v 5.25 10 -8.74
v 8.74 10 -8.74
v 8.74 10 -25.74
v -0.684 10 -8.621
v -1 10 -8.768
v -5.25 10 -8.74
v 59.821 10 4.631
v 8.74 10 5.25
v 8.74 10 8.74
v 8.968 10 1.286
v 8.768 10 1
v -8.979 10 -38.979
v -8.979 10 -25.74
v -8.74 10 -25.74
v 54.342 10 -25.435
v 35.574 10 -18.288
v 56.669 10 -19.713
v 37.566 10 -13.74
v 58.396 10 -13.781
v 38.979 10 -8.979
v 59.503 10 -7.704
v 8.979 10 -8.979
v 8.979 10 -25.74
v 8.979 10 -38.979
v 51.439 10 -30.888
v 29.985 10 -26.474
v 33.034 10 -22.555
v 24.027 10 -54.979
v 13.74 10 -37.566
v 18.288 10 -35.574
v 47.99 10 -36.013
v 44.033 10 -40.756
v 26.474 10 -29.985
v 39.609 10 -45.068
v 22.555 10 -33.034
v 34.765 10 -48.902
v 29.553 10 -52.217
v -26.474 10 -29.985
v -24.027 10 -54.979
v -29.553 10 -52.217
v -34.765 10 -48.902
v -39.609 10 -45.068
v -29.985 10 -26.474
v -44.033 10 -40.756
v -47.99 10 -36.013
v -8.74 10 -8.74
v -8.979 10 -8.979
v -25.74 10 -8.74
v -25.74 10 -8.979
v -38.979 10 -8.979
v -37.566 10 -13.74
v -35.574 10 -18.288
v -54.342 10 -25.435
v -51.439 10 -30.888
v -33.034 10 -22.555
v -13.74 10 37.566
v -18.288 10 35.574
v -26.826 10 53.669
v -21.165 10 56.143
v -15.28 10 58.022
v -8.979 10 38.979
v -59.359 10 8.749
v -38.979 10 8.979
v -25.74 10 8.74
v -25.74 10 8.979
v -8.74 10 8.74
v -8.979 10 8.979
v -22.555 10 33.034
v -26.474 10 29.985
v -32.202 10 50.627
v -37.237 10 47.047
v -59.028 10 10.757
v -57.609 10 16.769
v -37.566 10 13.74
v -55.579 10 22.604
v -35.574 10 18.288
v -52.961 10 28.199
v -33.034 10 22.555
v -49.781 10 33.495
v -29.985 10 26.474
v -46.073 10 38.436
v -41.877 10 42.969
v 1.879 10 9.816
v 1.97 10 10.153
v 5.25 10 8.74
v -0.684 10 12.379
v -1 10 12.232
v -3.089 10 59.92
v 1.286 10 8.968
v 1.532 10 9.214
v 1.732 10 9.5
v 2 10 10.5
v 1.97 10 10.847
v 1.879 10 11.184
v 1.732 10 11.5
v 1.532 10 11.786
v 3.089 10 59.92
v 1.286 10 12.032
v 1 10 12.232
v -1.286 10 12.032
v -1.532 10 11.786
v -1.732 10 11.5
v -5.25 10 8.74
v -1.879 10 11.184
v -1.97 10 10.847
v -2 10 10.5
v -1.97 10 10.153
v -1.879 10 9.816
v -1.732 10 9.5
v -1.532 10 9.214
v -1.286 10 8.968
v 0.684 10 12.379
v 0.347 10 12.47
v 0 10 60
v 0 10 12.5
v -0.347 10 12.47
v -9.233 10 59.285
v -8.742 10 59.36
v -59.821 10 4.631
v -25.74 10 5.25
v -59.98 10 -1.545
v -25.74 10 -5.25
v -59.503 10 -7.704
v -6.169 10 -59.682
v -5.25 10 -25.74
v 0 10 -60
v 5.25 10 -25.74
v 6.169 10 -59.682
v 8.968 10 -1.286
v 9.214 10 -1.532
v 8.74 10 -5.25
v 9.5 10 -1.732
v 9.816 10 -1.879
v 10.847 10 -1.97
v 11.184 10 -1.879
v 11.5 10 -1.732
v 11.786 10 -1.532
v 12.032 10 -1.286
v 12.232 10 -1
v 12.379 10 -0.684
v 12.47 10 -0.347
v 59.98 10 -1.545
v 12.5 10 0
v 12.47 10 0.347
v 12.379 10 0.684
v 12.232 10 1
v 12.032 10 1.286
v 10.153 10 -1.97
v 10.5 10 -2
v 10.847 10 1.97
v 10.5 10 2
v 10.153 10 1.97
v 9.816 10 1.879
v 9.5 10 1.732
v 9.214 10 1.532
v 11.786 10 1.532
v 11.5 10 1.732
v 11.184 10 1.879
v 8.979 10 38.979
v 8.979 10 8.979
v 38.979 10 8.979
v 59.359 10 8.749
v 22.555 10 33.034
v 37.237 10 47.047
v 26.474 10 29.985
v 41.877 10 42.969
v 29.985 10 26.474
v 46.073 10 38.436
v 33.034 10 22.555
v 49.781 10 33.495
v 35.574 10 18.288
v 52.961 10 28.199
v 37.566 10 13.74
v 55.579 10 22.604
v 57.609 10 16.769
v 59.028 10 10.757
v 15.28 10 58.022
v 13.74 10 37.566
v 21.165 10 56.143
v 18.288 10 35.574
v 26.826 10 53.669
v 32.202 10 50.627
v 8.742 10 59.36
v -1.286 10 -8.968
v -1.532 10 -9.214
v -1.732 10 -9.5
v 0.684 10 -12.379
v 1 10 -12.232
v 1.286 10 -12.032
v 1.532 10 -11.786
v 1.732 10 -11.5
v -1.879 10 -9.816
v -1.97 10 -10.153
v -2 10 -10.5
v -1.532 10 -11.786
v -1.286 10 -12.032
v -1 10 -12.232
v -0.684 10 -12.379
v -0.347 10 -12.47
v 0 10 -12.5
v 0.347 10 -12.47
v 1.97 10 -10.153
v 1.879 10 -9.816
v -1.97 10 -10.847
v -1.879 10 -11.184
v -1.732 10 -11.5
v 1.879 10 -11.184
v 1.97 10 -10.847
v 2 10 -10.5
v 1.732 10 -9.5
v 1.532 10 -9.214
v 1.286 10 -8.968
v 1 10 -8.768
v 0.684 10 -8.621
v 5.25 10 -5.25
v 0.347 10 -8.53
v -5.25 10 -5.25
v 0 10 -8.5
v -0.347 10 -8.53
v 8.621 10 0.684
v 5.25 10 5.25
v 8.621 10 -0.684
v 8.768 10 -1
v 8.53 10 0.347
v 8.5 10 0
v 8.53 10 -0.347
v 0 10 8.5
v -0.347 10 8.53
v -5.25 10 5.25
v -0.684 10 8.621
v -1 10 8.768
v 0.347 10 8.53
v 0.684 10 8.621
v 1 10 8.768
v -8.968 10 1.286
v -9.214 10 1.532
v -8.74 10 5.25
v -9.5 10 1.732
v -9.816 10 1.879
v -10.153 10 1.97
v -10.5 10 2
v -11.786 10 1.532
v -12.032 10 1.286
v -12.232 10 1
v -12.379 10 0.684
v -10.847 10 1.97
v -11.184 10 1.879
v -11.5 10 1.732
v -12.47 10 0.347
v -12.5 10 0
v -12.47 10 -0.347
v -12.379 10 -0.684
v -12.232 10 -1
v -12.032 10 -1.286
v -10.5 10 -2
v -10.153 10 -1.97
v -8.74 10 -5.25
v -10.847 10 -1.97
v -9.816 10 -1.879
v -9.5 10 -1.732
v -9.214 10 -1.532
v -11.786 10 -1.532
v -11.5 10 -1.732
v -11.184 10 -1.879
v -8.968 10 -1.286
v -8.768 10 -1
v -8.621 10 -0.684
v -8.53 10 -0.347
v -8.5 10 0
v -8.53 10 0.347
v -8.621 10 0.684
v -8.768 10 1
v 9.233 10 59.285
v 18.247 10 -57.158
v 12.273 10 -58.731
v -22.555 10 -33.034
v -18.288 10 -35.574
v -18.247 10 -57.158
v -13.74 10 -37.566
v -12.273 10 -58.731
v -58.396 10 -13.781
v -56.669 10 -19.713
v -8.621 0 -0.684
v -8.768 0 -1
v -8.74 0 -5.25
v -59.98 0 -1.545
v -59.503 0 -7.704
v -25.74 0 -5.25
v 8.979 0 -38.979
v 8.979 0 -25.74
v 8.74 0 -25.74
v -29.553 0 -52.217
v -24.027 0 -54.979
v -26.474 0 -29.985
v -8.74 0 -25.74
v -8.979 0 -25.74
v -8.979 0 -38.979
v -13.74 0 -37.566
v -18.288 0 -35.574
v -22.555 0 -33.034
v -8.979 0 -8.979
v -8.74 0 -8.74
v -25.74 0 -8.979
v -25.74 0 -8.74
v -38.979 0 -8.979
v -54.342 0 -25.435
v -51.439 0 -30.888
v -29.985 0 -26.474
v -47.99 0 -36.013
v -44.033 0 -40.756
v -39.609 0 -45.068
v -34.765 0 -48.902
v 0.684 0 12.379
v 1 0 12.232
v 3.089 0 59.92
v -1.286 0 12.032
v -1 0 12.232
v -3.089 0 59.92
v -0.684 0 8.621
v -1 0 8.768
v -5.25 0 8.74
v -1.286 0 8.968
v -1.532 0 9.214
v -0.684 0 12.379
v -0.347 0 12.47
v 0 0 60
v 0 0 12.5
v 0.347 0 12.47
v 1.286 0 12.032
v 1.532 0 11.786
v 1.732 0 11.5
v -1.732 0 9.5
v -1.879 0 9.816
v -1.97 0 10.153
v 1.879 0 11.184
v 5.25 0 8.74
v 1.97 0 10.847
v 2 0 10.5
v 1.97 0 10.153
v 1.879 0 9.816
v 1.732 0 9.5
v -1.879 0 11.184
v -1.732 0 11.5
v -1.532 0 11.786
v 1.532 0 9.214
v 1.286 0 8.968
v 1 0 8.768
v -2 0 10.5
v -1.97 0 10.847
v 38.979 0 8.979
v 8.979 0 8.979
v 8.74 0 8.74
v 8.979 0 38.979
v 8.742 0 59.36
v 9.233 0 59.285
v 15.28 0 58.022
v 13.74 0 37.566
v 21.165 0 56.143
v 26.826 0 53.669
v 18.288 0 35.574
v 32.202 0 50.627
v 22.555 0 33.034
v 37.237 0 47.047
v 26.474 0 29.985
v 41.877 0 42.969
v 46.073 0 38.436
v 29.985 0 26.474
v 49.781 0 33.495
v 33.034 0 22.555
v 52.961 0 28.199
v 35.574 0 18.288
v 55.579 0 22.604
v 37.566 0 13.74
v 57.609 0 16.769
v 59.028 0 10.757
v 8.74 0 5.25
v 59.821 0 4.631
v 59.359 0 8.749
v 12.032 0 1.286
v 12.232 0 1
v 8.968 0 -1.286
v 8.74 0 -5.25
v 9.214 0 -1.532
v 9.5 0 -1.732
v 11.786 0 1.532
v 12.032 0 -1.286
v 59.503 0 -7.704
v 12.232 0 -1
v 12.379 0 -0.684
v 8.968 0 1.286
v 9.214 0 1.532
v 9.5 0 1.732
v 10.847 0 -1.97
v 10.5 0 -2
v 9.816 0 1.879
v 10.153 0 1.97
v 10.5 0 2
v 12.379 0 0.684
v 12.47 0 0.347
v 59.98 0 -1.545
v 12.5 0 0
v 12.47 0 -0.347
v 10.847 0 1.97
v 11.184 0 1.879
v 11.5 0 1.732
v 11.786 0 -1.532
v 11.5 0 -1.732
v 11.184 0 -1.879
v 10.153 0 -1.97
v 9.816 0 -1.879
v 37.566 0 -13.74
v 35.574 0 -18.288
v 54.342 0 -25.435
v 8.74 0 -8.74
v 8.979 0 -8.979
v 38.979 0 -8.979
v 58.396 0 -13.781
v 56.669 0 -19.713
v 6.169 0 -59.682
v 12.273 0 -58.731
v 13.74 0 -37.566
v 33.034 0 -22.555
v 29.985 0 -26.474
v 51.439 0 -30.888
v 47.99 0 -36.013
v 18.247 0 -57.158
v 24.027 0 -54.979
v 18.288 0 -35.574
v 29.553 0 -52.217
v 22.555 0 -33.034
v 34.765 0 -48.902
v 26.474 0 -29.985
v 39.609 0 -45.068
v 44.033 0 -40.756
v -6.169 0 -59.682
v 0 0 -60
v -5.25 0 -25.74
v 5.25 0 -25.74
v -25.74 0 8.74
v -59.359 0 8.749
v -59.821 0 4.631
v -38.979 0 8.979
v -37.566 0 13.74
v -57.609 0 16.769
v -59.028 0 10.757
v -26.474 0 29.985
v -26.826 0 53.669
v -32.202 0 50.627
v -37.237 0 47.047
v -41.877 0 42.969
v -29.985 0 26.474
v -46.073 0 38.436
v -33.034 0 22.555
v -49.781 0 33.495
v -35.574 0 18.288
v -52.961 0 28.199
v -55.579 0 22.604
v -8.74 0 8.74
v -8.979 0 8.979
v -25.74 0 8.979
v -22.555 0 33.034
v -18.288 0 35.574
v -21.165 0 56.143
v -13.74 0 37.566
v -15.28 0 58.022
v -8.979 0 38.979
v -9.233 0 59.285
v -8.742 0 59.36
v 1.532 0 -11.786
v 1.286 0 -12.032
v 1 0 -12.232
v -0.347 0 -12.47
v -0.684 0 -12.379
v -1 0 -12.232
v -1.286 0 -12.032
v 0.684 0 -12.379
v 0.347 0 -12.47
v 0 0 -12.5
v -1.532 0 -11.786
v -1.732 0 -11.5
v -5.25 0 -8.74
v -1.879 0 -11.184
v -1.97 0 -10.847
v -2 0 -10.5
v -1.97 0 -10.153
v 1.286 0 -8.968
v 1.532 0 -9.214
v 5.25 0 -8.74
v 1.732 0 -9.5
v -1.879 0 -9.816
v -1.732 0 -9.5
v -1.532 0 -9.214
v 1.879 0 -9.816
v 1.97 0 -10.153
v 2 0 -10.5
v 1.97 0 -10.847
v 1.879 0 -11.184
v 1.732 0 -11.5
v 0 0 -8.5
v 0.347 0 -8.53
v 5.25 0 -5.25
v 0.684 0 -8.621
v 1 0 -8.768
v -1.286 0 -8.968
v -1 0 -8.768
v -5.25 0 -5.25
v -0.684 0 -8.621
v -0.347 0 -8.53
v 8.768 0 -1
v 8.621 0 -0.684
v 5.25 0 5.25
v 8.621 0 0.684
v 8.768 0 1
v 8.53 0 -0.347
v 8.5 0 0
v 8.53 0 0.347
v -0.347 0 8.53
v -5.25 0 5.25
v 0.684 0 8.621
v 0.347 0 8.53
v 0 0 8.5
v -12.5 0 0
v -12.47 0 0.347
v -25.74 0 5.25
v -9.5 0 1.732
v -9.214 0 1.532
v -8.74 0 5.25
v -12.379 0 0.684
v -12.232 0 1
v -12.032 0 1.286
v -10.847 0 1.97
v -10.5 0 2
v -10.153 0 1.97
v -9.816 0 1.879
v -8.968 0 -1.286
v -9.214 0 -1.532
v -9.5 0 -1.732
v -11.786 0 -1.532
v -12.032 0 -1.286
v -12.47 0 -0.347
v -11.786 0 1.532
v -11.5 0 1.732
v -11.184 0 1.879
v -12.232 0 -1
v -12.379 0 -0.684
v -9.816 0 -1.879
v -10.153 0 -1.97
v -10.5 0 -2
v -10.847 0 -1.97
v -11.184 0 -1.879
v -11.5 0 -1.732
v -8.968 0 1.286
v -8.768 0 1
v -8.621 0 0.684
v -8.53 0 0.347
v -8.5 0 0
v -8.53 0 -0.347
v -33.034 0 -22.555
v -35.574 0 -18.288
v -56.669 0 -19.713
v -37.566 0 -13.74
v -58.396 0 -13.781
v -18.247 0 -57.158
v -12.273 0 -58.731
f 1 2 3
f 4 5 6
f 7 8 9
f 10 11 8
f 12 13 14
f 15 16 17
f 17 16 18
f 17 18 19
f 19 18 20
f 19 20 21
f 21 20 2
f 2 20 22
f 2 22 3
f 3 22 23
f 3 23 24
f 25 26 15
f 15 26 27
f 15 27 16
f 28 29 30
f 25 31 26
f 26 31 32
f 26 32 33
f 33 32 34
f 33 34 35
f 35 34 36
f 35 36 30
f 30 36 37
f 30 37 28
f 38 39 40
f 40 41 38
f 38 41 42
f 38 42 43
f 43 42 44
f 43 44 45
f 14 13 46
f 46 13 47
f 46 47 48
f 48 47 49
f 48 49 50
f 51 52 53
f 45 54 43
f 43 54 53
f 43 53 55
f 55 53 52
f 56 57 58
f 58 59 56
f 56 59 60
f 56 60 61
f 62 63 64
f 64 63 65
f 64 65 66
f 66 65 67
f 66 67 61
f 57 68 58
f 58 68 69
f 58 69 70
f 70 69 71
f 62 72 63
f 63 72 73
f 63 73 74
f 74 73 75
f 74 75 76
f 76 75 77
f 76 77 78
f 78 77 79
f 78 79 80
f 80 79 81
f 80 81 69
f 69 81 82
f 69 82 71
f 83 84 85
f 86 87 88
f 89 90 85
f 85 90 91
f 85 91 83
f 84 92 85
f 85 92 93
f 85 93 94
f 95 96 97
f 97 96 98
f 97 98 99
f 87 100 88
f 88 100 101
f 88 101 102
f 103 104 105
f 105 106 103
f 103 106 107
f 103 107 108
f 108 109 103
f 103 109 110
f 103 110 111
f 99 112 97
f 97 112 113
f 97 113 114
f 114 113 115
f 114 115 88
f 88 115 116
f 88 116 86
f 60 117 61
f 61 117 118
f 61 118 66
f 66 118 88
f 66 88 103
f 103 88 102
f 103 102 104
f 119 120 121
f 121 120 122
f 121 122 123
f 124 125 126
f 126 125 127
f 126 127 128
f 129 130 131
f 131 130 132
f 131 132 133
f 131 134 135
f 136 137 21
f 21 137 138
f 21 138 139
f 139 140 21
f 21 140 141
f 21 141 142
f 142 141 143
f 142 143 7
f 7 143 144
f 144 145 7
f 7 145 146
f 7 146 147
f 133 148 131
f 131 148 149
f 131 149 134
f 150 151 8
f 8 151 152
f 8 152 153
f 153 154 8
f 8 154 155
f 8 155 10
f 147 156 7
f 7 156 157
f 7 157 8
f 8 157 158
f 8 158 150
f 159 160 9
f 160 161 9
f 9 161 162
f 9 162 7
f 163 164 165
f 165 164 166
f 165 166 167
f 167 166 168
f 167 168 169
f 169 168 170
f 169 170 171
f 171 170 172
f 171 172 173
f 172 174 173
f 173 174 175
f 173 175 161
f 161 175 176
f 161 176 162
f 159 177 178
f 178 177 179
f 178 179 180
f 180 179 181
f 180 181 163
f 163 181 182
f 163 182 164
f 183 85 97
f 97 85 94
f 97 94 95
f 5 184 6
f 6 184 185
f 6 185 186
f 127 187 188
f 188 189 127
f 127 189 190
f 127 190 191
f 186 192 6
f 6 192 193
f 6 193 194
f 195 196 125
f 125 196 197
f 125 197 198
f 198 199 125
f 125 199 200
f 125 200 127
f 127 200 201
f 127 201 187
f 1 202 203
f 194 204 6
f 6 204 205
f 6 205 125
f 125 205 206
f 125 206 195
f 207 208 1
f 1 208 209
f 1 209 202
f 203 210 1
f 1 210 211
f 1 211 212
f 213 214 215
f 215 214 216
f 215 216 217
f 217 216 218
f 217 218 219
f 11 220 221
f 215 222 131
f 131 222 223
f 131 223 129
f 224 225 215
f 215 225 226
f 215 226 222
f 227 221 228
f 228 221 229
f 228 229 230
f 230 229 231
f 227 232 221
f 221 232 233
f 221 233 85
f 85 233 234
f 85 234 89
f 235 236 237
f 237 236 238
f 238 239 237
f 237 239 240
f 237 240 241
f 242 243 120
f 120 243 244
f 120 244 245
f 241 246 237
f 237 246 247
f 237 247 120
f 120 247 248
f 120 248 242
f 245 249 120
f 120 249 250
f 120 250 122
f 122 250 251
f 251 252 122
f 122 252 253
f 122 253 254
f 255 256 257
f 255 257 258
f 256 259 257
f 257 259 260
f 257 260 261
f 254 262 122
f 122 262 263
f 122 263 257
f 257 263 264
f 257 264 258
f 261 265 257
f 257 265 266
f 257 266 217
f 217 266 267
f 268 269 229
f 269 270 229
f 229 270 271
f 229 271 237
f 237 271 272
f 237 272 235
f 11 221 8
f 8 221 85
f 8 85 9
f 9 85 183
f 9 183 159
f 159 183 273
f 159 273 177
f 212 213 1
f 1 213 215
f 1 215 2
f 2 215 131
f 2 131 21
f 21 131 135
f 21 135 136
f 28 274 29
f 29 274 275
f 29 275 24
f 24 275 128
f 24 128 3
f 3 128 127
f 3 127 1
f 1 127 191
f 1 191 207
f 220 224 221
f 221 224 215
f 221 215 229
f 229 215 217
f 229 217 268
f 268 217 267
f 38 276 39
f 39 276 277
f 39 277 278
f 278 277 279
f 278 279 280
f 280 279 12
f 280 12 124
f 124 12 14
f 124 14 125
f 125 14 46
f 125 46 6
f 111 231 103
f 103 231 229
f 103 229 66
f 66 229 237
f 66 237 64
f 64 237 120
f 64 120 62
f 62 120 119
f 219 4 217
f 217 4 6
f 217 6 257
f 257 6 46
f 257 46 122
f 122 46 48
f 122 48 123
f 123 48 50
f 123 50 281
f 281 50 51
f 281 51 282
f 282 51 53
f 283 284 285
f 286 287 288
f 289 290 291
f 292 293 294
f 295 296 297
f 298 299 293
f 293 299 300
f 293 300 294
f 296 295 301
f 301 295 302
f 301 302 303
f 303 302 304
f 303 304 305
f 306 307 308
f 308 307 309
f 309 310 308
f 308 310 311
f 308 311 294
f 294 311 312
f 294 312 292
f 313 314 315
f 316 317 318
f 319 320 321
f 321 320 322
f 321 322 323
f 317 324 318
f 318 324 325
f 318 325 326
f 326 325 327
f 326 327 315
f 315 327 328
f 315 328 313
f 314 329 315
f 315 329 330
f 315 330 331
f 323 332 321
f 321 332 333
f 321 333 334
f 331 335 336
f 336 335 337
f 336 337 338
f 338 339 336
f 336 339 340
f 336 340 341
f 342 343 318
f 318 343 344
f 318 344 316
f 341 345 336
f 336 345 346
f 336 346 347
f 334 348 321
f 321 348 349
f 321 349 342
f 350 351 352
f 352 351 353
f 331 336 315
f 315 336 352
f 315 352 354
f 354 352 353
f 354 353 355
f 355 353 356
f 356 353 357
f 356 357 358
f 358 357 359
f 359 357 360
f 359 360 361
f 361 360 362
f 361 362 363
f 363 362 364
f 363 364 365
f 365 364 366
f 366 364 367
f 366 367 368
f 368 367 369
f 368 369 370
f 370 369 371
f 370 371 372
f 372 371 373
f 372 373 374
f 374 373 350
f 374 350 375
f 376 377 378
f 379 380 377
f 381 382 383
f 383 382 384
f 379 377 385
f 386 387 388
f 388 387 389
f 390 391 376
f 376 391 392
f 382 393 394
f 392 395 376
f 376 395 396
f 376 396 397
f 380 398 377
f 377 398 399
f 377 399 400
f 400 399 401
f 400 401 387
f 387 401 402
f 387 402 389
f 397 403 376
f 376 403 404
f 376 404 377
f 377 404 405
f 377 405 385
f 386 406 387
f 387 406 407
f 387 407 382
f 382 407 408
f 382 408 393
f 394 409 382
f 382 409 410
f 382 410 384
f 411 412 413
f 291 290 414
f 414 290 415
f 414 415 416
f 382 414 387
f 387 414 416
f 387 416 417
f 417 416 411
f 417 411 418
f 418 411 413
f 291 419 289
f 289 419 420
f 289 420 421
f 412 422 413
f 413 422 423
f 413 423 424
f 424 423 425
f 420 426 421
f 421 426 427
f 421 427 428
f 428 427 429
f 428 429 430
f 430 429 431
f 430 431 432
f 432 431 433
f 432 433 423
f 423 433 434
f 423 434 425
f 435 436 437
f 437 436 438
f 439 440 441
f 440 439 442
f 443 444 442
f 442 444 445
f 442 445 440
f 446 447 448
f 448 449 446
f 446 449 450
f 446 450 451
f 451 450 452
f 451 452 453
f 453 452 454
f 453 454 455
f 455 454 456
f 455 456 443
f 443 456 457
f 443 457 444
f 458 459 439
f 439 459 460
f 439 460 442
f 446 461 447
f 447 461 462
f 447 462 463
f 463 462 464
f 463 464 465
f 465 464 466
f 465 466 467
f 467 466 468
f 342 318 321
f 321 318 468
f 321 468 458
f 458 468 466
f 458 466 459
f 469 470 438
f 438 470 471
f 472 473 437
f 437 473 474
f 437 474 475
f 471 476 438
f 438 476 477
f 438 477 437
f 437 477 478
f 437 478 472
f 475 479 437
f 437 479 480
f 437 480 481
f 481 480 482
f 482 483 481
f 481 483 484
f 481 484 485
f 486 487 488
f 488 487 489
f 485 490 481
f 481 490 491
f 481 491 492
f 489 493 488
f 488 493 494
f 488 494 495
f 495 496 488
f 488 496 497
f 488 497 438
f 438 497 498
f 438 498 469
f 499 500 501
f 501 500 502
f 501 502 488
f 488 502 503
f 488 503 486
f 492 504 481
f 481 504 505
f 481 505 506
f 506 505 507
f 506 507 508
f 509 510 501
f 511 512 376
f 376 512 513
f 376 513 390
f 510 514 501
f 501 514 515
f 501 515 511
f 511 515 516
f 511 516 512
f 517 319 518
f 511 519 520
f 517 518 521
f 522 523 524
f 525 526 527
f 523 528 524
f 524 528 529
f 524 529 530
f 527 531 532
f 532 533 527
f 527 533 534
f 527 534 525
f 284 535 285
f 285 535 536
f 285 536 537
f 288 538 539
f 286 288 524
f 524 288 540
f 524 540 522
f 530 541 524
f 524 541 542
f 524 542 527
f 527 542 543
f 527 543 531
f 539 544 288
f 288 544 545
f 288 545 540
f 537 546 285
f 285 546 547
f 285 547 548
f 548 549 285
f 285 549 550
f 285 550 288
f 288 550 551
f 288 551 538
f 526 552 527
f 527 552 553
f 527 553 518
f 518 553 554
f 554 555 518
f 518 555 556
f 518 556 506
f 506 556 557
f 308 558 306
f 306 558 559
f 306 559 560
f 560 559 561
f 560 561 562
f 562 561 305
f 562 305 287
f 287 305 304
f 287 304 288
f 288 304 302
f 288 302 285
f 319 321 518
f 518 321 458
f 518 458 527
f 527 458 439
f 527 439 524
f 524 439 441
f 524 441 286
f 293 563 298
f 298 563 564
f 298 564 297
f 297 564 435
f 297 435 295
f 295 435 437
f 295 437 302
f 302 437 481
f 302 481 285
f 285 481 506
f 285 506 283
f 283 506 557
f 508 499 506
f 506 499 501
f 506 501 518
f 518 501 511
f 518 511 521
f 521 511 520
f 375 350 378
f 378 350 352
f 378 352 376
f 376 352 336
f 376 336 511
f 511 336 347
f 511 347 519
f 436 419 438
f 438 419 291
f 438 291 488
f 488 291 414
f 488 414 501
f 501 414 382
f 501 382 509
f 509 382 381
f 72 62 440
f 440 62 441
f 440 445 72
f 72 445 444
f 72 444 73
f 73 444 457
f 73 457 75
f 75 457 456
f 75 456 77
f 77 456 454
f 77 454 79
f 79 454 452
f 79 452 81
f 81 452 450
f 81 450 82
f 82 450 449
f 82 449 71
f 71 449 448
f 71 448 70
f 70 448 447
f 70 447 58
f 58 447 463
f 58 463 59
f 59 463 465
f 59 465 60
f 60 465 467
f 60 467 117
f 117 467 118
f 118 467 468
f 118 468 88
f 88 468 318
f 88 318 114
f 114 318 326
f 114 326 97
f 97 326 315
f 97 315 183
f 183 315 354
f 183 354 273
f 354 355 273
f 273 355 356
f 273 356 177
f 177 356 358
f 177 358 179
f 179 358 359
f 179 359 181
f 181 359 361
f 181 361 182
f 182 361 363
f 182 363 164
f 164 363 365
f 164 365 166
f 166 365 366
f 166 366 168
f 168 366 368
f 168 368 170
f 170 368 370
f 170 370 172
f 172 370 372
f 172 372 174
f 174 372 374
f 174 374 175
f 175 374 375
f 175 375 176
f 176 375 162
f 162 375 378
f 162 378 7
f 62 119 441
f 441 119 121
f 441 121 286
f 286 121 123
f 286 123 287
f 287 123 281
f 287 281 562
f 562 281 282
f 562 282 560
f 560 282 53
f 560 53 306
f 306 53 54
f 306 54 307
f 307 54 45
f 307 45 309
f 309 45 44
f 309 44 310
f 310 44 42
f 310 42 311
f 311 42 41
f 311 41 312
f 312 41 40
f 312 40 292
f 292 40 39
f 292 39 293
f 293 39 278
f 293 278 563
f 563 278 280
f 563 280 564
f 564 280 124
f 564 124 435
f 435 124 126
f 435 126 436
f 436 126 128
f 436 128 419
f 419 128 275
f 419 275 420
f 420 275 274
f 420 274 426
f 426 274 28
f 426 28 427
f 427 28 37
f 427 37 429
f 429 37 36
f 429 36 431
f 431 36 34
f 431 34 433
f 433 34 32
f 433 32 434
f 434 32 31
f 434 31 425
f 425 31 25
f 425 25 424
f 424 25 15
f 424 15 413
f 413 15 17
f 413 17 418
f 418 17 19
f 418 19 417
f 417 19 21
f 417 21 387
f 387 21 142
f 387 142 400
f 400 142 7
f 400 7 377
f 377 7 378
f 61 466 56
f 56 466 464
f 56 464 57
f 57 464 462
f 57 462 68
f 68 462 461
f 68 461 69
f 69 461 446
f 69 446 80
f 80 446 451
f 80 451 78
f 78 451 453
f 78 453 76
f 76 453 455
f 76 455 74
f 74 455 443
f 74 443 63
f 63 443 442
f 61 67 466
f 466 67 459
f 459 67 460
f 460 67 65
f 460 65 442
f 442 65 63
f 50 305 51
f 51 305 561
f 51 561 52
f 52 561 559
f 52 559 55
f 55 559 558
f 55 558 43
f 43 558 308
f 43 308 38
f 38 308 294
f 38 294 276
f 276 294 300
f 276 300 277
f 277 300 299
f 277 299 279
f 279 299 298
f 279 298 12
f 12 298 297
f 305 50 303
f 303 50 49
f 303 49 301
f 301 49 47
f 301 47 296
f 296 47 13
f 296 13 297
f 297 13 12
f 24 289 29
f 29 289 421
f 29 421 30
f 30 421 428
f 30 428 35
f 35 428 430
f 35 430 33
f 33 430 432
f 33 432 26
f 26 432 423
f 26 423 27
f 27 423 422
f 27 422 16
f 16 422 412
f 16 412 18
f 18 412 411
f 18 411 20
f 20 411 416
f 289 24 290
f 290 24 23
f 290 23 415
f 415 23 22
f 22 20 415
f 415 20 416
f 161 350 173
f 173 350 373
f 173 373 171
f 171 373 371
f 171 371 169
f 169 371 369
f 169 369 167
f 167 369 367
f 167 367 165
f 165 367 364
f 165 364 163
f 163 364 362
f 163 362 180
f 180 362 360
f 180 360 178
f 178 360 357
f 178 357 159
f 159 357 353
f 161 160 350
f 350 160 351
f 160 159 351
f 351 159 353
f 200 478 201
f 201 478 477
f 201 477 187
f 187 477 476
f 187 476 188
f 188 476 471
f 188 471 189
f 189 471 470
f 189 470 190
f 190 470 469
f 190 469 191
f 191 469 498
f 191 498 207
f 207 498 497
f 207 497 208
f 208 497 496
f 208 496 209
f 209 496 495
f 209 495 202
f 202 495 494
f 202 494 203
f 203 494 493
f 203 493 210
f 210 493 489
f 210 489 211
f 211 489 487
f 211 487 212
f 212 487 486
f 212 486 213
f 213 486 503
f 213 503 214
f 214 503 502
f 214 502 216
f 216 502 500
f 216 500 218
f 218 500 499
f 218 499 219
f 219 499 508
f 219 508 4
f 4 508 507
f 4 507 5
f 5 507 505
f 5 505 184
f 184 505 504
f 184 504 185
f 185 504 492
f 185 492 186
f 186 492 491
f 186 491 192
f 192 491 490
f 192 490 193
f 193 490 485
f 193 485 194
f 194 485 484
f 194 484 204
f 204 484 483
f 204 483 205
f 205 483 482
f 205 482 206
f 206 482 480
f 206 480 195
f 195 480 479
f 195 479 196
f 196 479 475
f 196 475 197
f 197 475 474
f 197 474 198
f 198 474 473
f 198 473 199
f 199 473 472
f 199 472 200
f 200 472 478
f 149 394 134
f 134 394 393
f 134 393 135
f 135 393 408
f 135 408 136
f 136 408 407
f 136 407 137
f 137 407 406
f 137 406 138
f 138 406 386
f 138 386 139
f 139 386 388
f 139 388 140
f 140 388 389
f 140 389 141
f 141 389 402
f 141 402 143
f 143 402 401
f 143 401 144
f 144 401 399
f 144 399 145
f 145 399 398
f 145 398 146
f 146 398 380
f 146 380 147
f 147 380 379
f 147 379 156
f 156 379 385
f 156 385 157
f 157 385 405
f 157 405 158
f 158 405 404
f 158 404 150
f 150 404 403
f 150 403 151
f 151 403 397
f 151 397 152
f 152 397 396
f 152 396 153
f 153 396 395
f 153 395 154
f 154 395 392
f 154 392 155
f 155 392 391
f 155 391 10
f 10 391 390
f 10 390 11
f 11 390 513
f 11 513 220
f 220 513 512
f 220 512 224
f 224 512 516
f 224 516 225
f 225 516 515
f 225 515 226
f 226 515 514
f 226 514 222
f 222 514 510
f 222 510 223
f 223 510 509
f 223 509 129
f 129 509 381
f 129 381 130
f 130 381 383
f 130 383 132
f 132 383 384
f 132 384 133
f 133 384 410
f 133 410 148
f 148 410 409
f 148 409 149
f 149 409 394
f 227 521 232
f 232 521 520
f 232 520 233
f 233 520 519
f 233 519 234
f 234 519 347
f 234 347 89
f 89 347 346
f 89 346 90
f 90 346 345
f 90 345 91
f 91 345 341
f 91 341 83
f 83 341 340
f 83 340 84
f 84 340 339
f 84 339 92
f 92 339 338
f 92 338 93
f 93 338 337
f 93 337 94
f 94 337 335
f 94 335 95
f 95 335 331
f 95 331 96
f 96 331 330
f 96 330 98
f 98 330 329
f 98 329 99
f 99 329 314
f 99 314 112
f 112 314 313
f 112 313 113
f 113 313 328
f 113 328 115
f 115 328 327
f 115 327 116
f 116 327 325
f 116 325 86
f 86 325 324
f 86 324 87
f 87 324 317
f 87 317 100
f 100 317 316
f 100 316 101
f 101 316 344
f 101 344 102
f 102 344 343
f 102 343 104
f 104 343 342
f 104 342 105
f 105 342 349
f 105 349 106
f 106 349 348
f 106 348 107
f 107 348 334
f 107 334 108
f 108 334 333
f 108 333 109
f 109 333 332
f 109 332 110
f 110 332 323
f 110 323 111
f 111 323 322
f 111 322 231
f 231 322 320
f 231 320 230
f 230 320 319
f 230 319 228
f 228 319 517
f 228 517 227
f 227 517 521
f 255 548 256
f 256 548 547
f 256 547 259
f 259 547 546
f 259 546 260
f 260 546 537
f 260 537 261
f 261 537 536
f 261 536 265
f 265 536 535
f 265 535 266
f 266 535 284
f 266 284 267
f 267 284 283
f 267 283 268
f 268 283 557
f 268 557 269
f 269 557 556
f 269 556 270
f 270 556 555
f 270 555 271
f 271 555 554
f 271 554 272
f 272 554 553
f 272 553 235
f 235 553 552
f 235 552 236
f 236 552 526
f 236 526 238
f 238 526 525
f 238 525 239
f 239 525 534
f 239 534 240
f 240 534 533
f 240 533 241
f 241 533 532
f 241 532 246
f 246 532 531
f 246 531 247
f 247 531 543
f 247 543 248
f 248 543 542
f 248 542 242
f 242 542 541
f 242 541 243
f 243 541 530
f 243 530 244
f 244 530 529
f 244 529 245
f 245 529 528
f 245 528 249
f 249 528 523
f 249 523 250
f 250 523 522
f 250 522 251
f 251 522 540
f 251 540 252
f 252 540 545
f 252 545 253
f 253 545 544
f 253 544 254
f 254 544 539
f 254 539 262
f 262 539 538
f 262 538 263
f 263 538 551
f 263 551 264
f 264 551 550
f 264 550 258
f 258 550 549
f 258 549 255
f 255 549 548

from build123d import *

# Parameters (mm, degrees)
SKETCH2_R           = 60
BOSS_EXTRUDE2_DEPTH = 10
SKETCH3_R           = 2
CUT_EXTRUDE1_DEPTH  = 86.440037453


with BuildPart() as part:
    # Sketch2 → Boss-Extrude2 (new body)
    with BuildSketch(Plane(origin=(0, 0, 0), x_dir=(1, 0, 0), z_dir=(0, 1, 0))):
        with Locations(Location((0, 0, 0), (0, 0, 270))):
            Circle(SKETCH2_R)
        with BuildLine():
            Line((-8.979157617, -38.979157617), (-8.979157617, -8.979157617))
            Line((-8.979157617, -8.979157617), (-38.979157617, -8.979157617))
            ThreePointArc((-38.979157617, -8.979157617), (-28.284271247, -28.284271247), (-8.979157617, -38.979157617))
        make_face(mode=Mode.SUBTRACT)
        with BuildLine():
            Line((-8.979157617, 8.979157617), (-8.979157617, 38.979157617))
            ThreePointArc((-8.979157617, 38.979157617), (-28.284271247, 28.284271247), (-38.979157617, 8.979157617))
            Line((-38.979157617, 8.979157617), (-8.979157617, 8.979157617))
        make_face(mode=Mode.SUBTRACT)
        with BuildLine():
            Line((8.979157617, 8.979157617), (38.979157617, 8.979157617))
            ThreePointArc((38.979157617, 8.979157617), (28.284271247, 28.284271247), (8.979157617, 38.979157617))
            Line((8.979157617, 38.979157617), (8.979157617, 8.979157617))
        make_face(mode=Mode.SUBTRACT)
        with BuildLine():
            Line((8.979157617, -8.979157617), (8.979157617, -38.979157617))
            ThreePointArc((8.979157617, -38.979157617), (28.284271247, -28.284271247), (38.979157617, -8.979157617))
            Line((38.979157617, -8.979157617), (8.979157617, -8.979157617))
        make_face(mode=Mode.SUBTRACT)
    extrude(amount=BOSS_EXTRUDE2_DEPTH)

    # Sketch3 → Cut-Extrude1 (cut, through all)
    with BuildSketch(Plane.XZ):
        with Locations(Location((-10.5, 0, 0), (0, 0, 270))):
            Circle(SKETCH3_R)
        with Locations(Location((0, 10.5, 0), (0, 0, 270))):
            Circle(SKETCH3_R)
        with Locations(Location((10.5, 0, 0), (0, 0, 270))):
            Circle(SKETCH3_R)
        with Locations(Location((0, -10.5, 0), (0, 0, 270))):
            Circle(SKETCH3_R)
    extrude(amount=-CUT_EXTRUDE1_DEPTH, mode=Mode.SUBTRACT)


solid = part.part
